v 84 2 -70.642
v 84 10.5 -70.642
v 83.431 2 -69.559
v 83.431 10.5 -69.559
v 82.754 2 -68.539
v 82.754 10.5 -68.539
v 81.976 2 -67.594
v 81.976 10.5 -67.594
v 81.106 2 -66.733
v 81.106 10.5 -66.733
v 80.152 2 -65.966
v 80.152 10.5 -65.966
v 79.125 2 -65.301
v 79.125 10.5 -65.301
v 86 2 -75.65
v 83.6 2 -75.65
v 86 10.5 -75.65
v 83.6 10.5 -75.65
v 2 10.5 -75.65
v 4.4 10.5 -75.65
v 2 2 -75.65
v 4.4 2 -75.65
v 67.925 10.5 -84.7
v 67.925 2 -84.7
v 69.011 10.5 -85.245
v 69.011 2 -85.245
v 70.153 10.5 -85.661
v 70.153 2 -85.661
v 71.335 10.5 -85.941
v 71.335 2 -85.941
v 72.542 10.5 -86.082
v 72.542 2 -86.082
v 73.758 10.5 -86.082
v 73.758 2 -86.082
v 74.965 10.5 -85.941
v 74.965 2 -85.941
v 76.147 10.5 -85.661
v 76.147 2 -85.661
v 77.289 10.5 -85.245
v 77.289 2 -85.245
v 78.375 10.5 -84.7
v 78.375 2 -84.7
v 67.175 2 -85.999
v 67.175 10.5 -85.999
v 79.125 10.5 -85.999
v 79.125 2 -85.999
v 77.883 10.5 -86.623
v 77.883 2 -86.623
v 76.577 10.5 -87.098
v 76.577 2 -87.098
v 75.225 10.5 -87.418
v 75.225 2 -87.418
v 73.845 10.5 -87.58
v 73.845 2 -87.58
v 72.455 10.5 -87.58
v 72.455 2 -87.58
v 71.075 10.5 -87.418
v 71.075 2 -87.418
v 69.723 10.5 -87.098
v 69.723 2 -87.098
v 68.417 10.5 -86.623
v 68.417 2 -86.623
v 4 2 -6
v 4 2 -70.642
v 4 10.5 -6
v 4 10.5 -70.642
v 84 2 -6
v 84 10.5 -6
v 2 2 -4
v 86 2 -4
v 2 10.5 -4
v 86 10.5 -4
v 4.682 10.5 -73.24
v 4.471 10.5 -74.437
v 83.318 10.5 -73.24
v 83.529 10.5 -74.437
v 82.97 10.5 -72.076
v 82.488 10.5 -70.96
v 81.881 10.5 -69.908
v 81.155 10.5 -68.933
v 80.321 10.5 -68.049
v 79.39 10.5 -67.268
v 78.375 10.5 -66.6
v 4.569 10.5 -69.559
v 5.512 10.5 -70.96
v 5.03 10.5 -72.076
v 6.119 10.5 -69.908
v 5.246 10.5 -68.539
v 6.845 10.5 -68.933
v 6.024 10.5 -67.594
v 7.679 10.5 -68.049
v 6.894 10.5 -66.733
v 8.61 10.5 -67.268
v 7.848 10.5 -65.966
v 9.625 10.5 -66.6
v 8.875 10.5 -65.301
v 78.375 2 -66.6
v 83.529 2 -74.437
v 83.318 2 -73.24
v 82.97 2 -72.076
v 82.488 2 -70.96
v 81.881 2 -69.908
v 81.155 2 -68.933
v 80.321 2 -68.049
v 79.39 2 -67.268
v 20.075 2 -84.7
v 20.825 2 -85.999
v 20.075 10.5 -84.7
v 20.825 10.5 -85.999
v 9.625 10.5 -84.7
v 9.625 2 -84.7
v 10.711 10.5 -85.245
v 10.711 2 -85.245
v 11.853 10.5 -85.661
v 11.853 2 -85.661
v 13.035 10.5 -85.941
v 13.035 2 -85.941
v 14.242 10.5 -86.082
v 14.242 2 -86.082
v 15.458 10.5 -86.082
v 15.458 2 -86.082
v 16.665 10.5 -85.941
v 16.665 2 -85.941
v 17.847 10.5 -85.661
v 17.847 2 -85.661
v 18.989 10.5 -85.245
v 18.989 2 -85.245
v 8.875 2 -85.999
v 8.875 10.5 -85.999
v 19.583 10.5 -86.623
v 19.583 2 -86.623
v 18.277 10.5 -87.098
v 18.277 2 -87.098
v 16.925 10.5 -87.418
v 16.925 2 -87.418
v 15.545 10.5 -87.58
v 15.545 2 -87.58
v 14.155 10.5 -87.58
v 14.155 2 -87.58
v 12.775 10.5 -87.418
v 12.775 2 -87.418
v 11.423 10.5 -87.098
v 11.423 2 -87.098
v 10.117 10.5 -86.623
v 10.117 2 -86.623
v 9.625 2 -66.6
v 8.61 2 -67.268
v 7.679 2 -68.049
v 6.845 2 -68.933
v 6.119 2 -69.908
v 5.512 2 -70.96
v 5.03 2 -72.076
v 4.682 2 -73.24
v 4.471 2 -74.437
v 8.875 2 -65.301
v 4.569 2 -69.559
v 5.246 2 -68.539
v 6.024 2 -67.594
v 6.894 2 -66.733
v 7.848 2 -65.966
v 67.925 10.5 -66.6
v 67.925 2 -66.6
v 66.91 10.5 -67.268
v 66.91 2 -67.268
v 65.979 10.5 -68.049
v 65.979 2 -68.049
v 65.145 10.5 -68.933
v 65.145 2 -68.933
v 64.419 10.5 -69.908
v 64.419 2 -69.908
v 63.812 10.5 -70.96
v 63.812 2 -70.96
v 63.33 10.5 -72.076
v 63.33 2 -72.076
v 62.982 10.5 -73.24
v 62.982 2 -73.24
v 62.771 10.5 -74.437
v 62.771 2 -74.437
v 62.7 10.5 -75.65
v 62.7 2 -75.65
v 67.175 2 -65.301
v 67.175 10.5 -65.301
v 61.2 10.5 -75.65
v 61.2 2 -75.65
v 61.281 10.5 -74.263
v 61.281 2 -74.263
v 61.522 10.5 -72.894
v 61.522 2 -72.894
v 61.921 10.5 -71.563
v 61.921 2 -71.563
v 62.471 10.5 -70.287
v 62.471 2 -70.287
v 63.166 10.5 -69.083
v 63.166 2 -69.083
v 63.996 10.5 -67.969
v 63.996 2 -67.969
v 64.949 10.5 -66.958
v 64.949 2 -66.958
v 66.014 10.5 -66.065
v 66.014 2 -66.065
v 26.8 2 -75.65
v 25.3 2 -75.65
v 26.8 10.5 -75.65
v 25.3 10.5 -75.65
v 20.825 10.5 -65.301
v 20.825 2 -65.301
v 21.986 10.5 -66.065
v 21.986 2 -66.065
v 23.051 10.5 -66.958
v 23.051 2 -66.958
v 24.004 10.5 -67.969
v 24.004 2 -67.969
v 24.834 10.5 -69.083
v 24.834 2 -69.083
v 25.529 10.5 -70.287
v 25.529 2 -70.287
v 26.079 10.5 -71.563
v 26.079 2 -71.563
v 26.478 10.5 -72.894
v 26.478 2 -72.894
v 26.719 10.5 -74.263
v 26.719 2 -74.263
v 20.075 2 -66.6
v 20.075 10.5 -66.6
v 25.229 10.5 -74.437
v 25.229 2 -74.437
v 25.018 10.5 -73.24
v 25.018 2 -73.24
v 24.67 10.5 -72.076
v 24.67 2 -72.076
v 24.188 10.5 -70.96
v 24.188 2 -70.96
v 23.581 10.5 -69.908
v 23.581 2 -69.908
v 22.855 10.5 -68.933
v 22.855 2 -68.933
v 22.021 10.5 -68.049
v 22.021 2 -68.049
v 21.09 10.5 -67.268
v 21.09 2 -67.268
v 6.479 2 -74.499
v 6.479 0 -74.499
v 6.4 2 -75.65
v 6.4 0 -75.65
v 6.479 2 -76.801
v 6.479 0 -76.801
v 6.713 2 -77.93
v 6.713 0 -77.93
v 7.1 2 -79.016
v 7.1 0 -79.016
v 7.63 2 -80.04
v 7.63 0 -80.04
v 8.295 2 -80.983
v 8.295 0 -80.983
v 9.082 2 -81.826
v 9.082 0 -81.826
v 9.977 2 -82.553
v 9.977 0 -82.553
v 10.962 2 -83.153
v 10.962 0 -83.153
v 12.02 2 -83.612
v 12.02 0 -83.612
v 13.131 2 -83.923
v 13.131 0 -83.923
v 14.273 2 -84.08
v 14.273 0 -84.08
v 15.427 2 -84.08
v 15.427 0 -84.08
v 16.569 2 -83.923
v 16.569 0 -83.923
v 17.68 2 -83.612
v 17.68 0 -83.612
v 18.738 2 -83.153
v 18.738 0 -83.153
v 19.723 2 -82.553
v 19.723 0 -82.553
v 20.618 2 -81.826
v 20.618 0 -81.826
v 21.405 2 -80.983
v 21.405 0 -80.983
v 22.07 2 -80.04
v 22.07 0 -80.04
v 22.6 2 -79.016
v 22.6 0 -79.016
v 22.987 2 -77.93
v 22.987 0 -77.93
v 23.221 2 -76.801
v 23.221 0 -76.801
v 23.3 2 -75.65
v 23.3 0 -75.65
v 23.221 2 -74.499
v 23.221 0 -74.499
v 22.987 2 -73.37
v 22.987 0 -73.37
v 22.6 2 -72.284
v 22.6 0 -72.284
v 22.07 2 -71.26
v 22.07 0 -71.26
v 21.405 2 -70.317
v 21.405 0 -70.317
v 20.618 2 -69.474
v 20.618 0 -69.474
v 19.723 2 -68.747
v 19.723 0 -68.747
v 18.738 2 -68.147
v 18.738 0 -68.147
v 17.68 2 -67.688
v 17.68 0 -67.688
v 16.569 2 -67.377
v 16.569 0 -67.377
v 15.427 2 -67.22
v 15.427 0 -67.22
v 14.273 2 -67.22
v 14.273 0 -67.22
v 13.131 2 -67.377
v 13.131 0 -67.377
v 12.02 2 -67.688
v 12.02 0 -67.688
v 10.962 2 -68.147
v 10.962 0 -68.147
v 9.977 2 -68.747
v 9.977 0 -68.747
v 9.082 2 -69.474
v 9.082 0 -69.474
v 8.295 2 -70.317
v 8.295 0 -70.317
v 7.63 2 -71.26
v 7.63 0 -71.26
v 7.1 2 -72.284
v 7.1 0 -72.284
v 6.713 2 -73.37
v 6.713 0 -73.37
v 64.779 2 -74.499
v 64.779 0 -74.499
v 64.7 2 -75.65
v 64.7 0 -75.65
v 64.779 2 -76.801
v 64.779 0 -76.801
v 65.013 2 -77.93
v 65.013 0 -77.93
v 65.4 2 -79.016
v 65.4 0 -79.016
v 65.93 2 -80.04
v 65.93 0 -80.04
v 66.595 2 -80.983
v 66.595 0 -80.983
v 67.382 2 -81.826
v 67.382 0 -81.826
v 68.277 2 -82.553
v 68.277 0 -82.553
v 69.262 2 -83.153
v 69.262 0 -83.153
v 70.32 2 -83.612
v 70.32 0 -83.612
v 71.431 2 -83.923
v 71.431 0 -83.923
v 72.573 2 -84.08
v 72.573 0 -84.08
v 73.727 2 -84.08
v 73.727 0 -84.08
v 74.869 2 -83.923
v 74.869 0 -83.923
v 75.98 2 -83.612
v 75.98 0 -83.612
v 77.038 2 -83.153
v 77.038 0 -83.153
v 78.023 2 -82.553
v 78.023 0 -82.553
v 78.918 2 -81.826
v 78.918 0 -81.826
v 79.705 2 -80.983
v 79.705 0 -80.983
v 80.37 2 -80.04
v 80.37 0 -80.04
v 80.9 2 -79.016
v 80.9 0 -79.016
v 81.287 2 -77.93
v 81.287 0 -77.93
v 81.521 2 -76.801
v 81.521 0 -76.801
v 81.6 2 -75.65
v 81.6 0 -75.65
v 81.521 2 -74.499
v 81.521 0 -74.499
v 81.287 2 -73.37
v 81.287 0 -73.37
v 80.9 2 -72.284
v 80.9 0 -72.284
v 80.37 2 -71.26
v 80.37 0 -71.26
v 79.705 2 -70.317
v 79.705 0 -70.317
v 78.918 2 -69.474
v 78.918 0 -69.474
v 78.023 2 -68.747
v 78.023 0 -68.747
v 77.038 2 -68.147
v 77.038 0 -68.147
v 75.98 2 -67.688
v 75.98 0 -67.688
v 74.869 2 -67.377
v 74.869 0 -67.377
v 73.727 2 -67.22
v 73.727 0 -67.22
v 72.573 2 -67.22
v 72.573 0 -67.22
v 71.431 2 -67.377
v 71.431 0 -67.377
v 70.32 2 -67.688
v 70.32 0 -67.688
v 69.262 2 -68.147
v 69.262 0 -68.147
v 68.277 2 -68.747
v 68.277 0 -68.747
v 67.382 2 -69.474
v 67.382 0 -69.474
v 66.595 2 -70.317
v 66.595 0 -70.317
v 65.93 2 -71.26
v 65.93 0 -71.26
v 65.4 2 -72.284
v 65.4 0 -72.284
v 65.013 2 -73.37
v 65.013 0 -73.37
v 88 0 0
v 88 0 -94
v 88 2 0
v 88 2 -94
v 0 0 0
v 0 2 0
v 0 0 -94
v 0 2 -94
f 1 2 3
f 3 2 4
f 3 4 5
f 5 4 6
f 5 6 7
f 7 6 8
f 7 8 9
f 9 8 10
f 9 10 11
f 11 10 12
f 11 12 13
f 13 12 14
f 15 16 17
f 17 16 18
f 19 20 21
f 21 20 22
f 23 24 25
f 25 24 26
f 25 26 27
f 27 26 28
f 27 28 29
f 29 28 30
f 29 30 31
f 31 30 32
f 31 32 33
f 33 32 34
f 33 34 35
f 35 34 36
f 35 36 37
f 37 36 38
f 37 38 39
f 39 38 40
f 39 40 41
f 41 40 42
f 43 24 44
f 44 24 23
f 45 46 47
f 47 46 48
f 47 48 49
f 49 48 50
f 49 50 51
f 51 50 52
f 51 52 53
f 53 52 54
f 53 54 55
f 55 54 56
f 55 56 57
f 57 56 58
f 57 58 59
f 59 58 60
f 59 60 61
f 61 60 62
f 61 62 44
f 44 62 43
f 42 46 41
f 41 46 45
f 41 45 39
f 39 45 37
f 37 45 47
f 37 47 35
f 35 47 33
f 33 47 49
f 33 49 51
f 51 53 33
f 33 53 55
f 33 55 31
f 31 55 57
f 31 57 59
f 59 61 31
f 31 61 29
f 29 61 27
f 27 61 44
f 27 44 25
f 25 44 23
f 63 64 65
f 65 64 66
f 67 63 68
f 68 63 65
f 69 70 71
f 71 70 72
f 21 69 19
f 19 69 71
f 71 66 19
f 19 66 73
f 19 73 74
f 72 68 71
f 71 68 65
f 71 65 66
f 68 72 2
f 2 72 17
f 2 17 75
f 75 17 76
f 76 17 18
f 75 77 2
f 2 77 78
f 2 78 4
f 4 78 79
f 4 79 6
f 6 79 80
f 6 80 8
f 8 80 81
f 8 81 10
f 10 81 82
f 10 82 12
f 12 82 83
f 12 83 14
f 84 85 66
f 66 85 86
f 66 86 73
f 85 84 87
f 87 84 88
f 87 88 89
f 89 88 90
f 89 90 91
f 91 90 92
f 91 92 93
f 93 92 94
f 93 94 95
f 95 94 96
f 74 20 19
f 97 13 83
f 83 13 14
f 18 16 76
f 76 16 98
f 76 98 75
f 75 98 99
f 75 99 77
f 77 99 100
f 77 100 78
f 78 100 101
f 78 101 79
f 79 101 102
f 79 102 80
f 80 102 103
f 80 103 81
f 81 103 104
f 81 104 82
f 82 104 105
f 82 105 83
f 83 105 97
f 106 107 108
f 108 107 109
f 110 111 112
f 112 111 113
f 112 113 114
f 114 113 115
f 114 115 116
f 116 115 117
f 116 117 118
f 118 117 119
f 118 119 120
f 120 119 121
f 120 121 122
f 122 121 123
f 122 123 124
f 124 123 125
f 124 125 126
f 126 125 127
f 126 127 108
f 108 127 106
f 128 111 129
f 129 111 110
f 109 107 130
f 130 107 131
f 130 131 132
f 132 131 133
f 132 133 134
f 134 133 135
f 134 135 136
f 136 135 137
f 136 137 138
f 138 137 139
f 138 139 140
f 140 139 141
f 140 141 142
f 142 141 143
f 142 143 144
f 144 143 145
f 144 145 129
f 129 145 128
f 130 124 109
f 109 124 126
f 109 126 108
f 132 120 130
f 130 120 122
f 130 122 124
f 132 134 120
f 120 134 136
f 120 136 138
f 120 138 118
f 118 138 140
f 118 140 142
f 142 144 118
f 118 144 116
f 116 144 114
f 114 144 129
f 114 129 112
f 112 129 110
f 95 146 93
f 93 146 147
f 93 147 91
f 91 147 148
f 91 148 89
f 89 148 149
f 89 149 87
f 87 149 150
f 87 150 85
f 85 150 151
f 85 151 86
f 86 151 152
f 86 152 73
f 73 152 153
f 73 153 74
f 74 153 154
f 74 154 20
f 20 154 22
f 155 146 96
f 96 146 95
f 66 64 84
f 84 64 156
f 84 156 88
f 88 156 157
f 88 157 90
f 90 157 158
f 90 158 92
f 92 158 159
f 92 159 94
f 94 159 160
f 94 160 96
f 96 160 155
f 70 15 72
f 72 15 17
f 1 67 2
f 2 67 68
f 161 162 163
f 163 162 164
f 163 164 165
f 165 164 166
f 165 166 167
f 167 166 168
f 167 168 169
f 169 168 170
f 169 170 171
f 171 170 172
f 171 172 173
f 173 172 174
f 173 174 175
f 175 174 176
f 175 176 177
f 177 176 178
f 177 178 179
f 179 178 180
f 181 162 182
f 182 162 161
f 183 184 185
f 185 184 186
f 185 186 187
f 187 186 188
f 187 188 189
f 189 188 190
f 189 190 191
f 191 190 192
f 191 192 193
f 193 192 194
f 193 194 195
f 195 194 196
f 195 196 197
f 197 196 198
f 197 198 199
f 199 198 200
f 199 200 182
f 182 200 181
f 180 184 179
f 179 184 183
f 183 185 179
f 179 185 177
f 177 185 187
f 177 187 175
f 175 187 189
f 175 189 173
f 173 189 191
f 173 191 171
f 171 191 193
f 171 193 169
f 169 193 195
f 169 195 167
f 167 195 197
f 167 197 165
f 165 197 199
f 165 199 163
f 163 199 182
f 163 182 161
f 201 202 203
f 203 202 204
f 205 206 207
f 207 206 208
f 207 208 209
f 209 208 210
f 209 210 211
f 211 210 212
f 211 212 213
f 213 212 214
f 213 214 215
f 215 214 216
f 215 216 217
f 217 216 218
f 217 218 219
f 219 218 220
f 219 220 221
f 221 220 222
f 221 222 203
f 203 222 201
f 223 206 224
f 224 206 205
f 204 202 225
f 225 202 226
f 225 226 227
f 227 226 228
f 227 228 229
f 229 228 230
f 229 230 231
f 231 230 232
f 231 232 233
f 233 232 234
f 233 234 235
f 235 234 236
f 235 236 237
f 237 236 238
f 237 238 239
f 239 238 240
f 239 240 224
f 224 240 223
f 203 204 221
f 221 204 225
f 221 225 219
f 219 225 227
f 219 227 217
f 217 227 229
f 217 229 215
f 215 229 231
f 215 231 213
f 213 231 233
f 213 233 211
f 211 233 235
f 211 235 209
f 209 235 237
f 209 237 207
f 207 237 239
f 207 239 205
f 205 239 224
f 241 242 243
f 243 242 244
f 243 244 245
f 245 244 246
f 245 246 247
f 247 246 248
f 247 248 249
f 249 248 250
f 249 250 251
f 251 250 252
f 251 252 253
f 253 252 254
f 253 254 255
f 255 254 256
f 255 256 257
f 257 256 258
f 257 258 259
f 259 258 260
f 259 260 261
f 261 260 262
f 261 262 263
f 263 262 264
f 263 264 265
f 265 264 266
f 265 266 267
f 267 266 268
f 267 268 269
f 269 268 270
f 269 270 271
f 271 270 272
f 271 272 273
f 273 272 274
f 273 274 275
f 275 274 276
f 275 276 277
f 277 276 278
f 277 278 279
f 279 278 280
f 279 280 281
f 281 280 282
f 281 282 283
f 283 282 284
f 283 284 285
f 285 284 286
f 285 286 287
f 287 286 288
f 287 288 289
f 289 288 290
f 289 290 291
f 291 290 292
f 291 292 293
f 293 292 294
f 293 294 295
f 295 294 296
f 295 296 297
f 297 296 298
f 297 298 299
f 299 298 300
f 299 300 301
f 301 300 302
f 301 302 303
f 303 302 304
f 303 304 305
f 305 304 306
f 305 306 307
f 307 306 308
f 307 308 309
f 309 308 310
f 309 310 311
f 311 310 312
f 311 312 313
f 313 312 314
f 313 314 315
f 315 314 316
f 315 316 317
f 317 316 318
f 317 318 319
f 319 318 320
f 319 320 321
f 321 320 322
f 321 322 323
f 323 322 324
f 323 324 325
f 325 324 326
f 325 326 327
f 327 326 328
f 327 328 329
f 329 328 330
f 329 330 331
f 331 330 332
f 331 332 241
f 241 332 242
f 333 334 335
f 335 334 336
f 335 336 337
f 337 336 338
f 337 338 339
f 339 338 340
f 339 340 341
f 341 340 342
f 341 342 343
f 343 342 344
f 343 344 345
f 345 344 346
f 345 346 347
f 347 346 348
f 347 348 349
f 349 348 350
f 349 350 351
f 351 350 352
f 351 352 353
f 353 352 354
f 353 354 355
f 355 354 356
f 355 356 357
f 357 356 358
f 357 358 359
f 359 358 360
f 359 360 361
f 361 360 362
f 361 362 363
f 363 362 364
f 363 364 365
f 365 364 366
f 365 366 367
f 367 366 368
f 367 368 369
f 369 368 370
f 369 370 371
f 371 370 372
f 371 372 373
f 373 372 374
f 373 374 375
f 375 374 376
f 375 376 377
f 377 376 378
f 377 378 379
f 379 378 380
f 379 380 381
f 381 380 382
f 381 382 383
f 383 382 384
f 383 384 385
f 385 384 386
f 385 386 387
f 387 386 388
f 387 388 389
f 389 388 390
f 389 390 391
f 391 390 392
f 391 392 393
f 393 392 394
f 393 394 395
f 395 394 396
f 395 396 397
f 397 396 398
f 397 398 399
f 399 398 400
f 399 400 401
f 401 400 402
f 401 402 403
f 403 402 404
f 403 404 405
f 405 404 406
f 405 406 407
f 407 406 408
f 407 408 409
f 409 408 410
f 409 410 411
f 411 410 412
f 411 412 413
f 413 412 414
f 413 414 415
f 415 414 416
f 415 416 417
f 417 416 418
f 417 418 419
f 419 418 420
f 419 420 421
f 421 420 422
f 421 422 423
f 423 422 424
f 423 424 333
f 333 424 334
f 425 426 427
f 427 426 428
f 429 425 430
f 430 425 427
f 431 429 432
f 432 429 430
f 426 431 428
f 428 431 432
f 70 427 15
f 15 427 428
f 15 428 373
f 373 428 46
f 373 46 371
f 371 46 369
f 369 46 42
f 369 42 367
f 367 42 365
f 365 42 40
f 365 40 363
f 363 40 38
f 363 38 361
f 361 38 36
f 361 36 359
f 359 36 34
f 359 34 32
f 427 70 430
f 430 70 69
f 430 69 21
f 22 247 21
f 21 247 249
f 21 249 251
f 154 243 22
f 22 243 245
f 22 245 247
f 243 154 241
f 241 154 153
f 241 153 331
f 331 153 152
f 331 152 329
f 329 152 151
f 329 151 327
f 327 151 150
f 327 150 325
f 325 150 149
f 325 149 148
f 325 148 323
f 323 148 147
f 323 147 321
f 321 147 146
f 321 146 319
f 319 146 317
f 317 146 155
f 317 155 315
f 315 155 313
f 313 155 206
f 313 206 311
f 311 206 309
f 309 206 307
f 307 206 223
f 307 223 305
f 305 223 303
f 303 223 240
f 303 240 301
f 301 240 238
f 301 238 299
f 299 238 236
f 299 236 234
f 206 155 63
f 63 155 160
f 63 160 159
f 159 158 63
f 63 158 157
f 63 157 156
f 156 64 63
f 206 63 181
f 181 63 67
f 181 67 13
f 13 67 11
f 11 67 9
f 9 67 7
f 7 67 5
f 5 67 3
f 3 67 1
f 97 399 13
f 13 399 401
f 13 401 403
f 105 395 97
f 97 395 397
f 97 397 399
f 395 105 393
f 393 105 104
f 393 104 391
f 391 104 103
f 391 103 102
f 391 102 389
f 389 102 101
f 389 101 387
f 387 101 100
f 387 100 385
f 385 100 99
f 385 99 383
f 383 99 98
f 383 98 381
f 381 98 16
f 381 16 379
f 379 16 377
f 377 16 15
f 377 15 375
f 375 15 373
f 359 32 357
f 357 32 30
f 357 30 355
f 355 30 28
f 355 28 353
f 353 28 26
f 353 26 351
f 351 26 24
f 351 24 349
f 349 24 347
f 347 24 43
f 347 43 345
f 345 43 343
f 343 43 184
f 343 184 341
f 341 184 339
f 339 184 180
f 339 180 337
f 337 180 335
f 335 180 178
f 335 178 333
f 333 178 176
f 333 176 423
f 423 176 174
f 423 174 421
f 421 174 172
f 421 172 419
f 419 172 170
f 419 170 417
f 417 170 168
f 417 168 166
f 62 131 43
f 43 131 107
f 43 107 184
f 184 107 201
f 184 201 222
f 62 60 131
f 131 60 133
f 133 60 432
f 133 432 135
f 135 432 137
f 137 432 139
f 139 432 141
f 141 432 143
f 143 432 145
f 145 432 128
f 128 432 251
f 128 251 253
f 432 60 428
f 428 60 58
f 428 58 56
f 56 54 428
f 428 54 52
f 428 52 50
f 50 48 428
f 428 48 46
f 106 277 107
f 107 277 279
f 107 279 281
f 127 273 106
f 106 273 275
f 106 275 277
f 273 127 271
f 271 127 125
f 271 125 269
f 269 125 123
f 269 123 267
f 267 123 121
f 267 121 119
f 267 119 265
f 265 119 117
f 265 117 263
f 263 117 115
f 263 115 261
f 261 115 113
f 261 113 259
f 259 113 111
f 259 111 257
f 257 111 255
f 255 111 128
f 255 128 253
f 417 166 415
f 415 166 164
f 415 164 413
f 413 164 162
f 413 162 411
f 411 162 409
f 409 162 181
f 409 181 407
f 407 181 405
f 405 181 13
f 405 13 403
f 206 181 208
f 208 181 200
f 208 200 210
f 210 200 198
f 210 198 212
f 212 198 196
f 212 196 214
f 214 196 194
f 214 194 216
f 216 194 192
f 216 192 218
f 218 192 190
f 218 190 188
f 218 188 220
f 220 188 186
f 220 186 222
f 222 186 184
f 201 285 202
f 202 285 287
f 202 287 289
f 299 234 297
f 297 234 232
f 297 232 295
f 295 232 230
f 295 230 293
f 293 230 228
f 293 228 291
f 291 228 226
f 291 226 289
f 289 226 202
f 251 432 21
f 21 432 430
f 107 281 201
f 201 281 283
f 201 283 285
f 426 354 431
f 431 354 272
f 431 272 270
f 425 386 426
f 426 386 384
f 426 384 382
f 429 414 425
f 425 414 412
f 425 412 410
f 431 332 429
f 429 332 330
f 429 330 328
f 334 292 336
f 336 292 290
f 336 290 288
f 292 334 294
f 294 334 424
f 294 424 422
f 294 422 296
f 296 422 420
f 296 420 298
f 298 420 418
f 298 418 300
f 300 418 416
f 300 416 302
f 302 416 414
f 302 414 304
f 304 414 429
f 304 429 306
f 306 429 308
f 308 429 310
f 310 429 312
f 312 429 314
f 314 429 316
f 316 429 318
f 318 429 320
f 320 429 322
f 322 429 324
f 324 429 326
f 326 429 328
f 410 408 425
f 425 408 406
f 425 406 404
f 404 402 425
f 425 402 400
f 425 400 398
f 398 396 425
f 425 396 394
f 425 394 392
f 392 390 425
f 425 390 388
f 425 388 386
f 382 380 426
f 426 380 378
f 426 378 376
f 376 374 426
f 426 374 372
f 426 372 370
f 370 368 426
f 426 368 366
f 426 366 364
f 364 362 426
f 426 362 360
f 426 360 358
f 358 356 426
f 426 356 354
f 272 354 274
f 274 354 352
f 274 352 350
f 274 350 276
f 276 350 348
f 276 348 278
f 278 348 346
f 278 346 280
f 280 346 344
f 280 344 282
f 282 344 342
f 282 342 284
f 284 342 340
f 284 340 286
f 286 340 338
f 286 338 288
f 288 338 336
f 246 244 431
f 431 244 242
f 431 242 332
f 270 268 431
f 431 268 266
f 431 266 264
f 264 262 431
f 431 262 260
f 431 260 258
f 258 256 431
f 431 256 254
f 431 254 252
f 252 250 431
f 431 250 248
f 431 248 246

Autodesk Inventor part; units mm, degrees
ref_plane "YZ Plane" through (0, 0, 0) normal (1, 0, 0) x (0, 1, 0)
ref_plane "XZ Plane" through (0, 0, 0) normal (0, 1, 0) x (-1, 0, 0)
ref_plane "XY Plane" through (0, 0, 0) normal (0, 0, 1) x (1, 0, 0)
sketch "Sketch1" plane through (0, 0, 0) normal (0, 1, 0) x (-1, 0, 0)
  line L0 (0, 0) -> (-88, 0)
  line L1 (-88, 0) -> (-88, -94)
  line L2 (-88, -94) -> (0, -94)
  line L3 (0, -94) -> (0, 0)
  line L4 (0, -94) -> (0, -75.65)
  line L5 (0, -94) -> (-14.85, -94)
  circle A0 centre (-14.85, -75.65) radius 8.45
  line L6 (-44, -88.9444) -> (-44, -54.2543) construction
  circle A1 centre (-73.15, -75.65) radius 8.45
  dimension "d0" = 88
  dimension "d1" = 94
  dimension "d2" = 18.35
  dimension "d3" = 14.85
  dimension "d4" = 16.9
  dimension "d48" = 16.9
extrude "Extrusion1" add sketch "Sketch1" along normal blind 2
sketch "Sketch3" plane through (0, 2, 0) normal (0, 1, 0) x (1, 0, 0)
  circle A0 centre (73.15, 75.65) radius 8.45 construction
  circle A1 centre (14.85, 75.65) radius 8.45 construction
  line L0 (0, 0) -> (4, 0) construction
  line L1 (4, 0) -> (4, 6) construction
  line L2 (4, 6) -> (0, 6) construction
  line L3 (0, 6) -> (0, 0) construction
  line L4 (88, 0) -> (84, 0) construction
  line L5 (84, 0) -> (84, 6) construction
  line L6 (84, 6) -> (88, 6) construction
  line L7 (88, 6) -> (88, 0) construction
  line L8 (4, 6) -> (2, 6) construction
  line L9 (2, 6) -> (2, 4) construction
  line L10 (2, 4) -> (4, 4) construction
  line L11 (4, 4) -> (4, 6) construction
  line L12 (2, 4) -> (6, 4)
  line L13 (6, 4) -> (6, 6)
  line L14 (6, 6) -> (2, 6)
  line L15 (2, 6) -> (2, 4)
  line L16 (2, 4) -> (4, 4)
  line L17 (4, 4) -> (4, 8)
  line L18 (4, 8) -> (2, 8)
  line L19 (2, 8) -> (2, 4)
  line L20 (86, 4) -> (82, 4)
  line L21 (82, 4) -> (82, 4)
  line L22 (82, 4) -> (86, 4)
  line L23 (86, 4) -> (86, 4)
  line L24 (86, 4) -> (84, 4)
  line L25 (84, 4) -> (84, 8)
  line L26 (84, 8) -> (86, 8)
  line L27 (86, 8) -> (86, 4)
  line L28 (44, 4.3599) -> (37, 4.3599) construction
  line L29 (88, -1) -> (0, -1) construction
  line L30 (37, -1) -> (51, -1) construction
  line L31 (51, -1) -> (51, 0) construction
  line L32 (51, 0) -> (37, 0) construction
  line L33 (37, 0) -> (37, -1) construction
  line L34 (37, -1) -> (51, -1)
  line L35 (51, -1) -> (51, 0)
  line L36 (51, 0) -> (37, 0)
  line L37 (37, 0) -> (37, -1)
  line L38 (0, 95) -> (88, 95) projected
  line L39 (37, 95) -> (51, 95)
  line L40 (51, 95) -> (51, 94)
  line L41 (51, 94) -> (37, 94)
  line L42 (37, 94) -> (37, 95)
  circle A2 centre (14.85, 75.65) radius 10.45
  circle A3 centre (14.85, 75.65) radius 11.95
  line L43 (14.85, 75.65) -> (26.8, 75.65) construction
  line L44 (14.85, 75.65) -> (20.825, 85.999) construction
  line L45 (14.85, 75.65) -> (8.875, 85.999) construction
  line L46 (14.85, 75.65) -> (2.9, 75.65) construction
  line L47 (14.85, 75.65) -> (8.875, 65.301) construction
  line L48 (14.85, 75.65) -> (20.825, 65.301) construction
  line L49 (9.625, 84.7) -> (8.875, 85.999) construction
  line L50 (9.625, 84.7) -> (8.875, 85.999)
  line L51 (20.825, 85.999) -> (20.075, 84.7)
  line L52 (25.3, 75.65) -> (26.8, 75.65)
  line L53 (20.825, 65.301) -> (20.075, 66.6)
  line L54 (9.625, 66.6) -> (8.875, 65.301)
  line L55 (4.4, 75.65) -> (2.9, 75.65)
  line L56 (44, 84.7433) -> (44, 74.6259) construction
  circle A4 centre (73.15, 75.65) radius 8.45 construction
  circle A5 centre (73.15, 75.65) radius 10.45
  circle A6 centre (73.15, 75.65) radius 11.95
  line L57 (73.15, 75.65) -> (61.2, 75.65) construction
  line L58 (73.15, 75.65) -> (67.175, 85.999) construction
  line L59 (73.15, 75.65) -> (79.125, 85.999) construction
  line L60 (73.15, 75.65) -> (85.1, 75.65) construction
  line L61 (73.15, 75.65) -> (79.125, 65.301) construction
  line L62 (73.15, 75.65) -> (67.175, 65.301) construction
  line L63 (78.375, 84.7) -> (79.125, 85.999) construction
  line L64 (78.375, 84.7) -> (79.125, 85.999)
  line L65 (67.175, 85.999) -> (67.925, 84.7)
  line L66 (62.7, 75.65) -> (61.2, 75.65)
  line L67 (67.175, 65.301) -> (67.925, 66.6)
  line L68 (78.375, 66.6) -> (79.125, 65.301)
  line L69 (83.6, 75.65) -> (85.1, 75.65)
  line L70 (86, 4) -> (82, 4)
  line L71 (82, 4) -> (82, 6)
  line L72 (82, 6) -> (86, 6)
  line L73 (86, 6) -> (86, 4)
  point P0 (2, 4)
  point P1 (4, 6)
  point P2 (84, 4)
  point P3 (67.175, 65.301)
  point P4 (79.125, 65.301)
  point P5 (2.9, 75.65)
  point P6 (8.875, 65.301)
  point P7 (20.825, 65.301)
  point P8 (84, 6)
  dimension "d11" = 4
  dimension "d12" = 6
  dimension "d13" = 4
  dimension "d14" = 6
  dimension "d15" = 2
  dimension "d16" = 2
  dimension "d17" = 4
  dimension "d18" = 4
  dimension "d19" = 4
  dimension "d20" = 2
  dimension "d21" = 4
  dimension "d22" = 7
  dimension "d23" = 14
  dimension "d24" = 14
  dimension "d25" = 1
  dimension "d26" = 2
  dimension "d27" = 1.5
  dimension "d30" = 360
extrude "Extrusion3" add sketch "Sketch3" along normal blind 8.5 contours L15 L14 L17 L12 | L17 L14 L13 L12 | L19 L18 L17 L14 | L20 L25 L72 L27 | L20 L71 L72 L25 | L72 L25 L26 L27 | L52 A3 L53 A2 | A2 L50 A3 L51 | L54 A3 L55 A2 | L69 A6 L68 A5 | A5 L65 A6 L64 | L67 A6 L66 A5
sketch "Sketch6" plane through (0, 2, 0) normal (0, 1, 0) x (1, 0, 0)
  arc A0 (78.375, 84.7) -> (67.925, 84.7) centre (73.15, 75.65) ccw construction
  line L0 (67.925, 84.7) -> (67.175, 85.999) construction
  arc A1 (79.125, 85.999) -> (67.175, 85.999) centre (73.15, 75.65) ccw construction
  line L1 (79.125, 85.999) -> (78.375, 84.7) construction
  line L2 (2, 8) -> (4, 8) construction
  line L3 (4, 8) -> (4, 6) construction
  line L4 (4, 6) -> (6, 6) construction
  line L5 (6, 6) -> (6, 4) construction
  line L6 (6, 4) -> (2, 4) construction
  line L7 (2, 4) -> (2, 8) construction
  line L8 (83.6, 75.65) -> (85.1, 75.65) construction
  arc A2 (79.125, 65.301) -> (85.1, 75.65) centre (73.15, 75.65) ccw construction
  line L9 (79.125, 65.301) -> (78.375, 66.6) construction
  arc A3 (78.375, 66.6) -> (83.6, 75.65) centre (73.15, 75.65) ccw construction
  line L10 (20.825, 85.999) -> (20.075, 84.7) construction
  arc A4 (20.075, 84.7) -> (9.625, 84.7) centre (14.85, 75.65) ccw construction
  line L11 (9.625, 84.7) -> (8.875, 85.999) construction
  arc A5 (20.825, 85.999) -> (8.875, 85.999) centre (14.85, 75.65) ccw construction
  line L12 (2.9, 75.65) -> (4.4, 75.65) construction
  arc A6 (4.4, 75.65) -> (9.625, 66.6) centre (14.85, 75.65) ccw construction
  line L13 (9.625, 66.6) -> (8.875, 65.301) construction
  arc A7 (2.9, 75.65) -> (8.875, 65.301) centre (14.85, 75.65) ccw construction
  line L14 (86, 8) -> (86, 4) construction
  line L15 (86, 4) -> (82, 4) construction
  line L16 (82, 4) -> (82, 6) construction
  line L17 (82, 6) -> (84, 6) construction
  line L18 (84, 6) -> (84, 8) construction
  line L19 (84, 8) -> (86, 8) construction
  arc A8 (62.7, 75.65) -> (67.925, 66.6) centre (73.15, 75.65) ccw construction
  line L20 (67.925, 66.6) -> (67.175, 65.301) construction
  arc A9 (61.2, 75.65) -> (67.175, 65.301) centre (73.15, 75.65) ccw construction
  line L21 (61.2, 75.65) -> (62.7, 75.65) construction
  line L22 (25.3, 75.65) -> (26.8, 75.65) construction
  arc A10 (20.825, 65.301) -> (26.8, 75.65) centre (14.85, 75.65) ccw construction
  line L23 (20.825, 65.301) -> (20.075, 66.6) construction
  arc A11 (20.075, 66.6) -> (25.3, 75.65) centre (14.85, 75.65) ccw construction
  line L24 (88, 94) -> (0, 94) construction
  line L25 (0, 94) -> (0, 0) construction
  line L26 (0, 0) -> (88, 0) construction
  line L27 (88, 0) -> (88, 94) construction
  circle A12 centre (73.15, 75.65) radius 8.45 construction
  circle A13 centre (14.85, 75.65) radius 8.45 construction
  line L28 (6, 4) -> (82, 4) construction
  line L29 (82, 4) -> (82, 6) construction
  line L30 (82, 6) -> (6, 6) construction
  line L31 (6, 6) -> (6, 4) construction
  line L32 (86, 8) -> (84, 8) construction
  line L33 (84, 8) -> (84, 75.65) construction
  line L34 (84, 75.65) -> (86, 75.65) construction
  line L35 (86, 75.65) -> (86, 8) construction
  line L36 (2, 8) -> (4, 8) construction
  line L37 (4, 8) -> (4, 75.65) construction
  line L38 (4, 75.65) -> (2, 75.65) construction
  line L39 (2, 75.65) -> (2, 8) construction
  line L40 (2, 75.65) -> (4, 75.65)
  line L41 (4, 75.65) -> (4, 8)
  line L42 (4, 8) -> (2, 8)
  line L43 (2, 8) -> (2, 75.65)
  line L44 (6, 6) -> (82, 6)
  line L45 (82, 6) -> (82, 4)
  line L46 (82, 4) -> (6, 4)
  line L47 (6, 4) -> (6, 6)
  line L48 (84, 8) -> (86, 8)
  line L49 (86, 8) -> (86, 75.65)
  line L50 (86, 75.65) -> (84, 75.65)
  line L51 (84, 75.65) -> (84, 8)
  dimension "d44" = 2
  dimension "d45" = 2
extrude "Extrusion6" add sketch "Sketch6" along normal blind 8.5
properties part number "case_v1.1"
